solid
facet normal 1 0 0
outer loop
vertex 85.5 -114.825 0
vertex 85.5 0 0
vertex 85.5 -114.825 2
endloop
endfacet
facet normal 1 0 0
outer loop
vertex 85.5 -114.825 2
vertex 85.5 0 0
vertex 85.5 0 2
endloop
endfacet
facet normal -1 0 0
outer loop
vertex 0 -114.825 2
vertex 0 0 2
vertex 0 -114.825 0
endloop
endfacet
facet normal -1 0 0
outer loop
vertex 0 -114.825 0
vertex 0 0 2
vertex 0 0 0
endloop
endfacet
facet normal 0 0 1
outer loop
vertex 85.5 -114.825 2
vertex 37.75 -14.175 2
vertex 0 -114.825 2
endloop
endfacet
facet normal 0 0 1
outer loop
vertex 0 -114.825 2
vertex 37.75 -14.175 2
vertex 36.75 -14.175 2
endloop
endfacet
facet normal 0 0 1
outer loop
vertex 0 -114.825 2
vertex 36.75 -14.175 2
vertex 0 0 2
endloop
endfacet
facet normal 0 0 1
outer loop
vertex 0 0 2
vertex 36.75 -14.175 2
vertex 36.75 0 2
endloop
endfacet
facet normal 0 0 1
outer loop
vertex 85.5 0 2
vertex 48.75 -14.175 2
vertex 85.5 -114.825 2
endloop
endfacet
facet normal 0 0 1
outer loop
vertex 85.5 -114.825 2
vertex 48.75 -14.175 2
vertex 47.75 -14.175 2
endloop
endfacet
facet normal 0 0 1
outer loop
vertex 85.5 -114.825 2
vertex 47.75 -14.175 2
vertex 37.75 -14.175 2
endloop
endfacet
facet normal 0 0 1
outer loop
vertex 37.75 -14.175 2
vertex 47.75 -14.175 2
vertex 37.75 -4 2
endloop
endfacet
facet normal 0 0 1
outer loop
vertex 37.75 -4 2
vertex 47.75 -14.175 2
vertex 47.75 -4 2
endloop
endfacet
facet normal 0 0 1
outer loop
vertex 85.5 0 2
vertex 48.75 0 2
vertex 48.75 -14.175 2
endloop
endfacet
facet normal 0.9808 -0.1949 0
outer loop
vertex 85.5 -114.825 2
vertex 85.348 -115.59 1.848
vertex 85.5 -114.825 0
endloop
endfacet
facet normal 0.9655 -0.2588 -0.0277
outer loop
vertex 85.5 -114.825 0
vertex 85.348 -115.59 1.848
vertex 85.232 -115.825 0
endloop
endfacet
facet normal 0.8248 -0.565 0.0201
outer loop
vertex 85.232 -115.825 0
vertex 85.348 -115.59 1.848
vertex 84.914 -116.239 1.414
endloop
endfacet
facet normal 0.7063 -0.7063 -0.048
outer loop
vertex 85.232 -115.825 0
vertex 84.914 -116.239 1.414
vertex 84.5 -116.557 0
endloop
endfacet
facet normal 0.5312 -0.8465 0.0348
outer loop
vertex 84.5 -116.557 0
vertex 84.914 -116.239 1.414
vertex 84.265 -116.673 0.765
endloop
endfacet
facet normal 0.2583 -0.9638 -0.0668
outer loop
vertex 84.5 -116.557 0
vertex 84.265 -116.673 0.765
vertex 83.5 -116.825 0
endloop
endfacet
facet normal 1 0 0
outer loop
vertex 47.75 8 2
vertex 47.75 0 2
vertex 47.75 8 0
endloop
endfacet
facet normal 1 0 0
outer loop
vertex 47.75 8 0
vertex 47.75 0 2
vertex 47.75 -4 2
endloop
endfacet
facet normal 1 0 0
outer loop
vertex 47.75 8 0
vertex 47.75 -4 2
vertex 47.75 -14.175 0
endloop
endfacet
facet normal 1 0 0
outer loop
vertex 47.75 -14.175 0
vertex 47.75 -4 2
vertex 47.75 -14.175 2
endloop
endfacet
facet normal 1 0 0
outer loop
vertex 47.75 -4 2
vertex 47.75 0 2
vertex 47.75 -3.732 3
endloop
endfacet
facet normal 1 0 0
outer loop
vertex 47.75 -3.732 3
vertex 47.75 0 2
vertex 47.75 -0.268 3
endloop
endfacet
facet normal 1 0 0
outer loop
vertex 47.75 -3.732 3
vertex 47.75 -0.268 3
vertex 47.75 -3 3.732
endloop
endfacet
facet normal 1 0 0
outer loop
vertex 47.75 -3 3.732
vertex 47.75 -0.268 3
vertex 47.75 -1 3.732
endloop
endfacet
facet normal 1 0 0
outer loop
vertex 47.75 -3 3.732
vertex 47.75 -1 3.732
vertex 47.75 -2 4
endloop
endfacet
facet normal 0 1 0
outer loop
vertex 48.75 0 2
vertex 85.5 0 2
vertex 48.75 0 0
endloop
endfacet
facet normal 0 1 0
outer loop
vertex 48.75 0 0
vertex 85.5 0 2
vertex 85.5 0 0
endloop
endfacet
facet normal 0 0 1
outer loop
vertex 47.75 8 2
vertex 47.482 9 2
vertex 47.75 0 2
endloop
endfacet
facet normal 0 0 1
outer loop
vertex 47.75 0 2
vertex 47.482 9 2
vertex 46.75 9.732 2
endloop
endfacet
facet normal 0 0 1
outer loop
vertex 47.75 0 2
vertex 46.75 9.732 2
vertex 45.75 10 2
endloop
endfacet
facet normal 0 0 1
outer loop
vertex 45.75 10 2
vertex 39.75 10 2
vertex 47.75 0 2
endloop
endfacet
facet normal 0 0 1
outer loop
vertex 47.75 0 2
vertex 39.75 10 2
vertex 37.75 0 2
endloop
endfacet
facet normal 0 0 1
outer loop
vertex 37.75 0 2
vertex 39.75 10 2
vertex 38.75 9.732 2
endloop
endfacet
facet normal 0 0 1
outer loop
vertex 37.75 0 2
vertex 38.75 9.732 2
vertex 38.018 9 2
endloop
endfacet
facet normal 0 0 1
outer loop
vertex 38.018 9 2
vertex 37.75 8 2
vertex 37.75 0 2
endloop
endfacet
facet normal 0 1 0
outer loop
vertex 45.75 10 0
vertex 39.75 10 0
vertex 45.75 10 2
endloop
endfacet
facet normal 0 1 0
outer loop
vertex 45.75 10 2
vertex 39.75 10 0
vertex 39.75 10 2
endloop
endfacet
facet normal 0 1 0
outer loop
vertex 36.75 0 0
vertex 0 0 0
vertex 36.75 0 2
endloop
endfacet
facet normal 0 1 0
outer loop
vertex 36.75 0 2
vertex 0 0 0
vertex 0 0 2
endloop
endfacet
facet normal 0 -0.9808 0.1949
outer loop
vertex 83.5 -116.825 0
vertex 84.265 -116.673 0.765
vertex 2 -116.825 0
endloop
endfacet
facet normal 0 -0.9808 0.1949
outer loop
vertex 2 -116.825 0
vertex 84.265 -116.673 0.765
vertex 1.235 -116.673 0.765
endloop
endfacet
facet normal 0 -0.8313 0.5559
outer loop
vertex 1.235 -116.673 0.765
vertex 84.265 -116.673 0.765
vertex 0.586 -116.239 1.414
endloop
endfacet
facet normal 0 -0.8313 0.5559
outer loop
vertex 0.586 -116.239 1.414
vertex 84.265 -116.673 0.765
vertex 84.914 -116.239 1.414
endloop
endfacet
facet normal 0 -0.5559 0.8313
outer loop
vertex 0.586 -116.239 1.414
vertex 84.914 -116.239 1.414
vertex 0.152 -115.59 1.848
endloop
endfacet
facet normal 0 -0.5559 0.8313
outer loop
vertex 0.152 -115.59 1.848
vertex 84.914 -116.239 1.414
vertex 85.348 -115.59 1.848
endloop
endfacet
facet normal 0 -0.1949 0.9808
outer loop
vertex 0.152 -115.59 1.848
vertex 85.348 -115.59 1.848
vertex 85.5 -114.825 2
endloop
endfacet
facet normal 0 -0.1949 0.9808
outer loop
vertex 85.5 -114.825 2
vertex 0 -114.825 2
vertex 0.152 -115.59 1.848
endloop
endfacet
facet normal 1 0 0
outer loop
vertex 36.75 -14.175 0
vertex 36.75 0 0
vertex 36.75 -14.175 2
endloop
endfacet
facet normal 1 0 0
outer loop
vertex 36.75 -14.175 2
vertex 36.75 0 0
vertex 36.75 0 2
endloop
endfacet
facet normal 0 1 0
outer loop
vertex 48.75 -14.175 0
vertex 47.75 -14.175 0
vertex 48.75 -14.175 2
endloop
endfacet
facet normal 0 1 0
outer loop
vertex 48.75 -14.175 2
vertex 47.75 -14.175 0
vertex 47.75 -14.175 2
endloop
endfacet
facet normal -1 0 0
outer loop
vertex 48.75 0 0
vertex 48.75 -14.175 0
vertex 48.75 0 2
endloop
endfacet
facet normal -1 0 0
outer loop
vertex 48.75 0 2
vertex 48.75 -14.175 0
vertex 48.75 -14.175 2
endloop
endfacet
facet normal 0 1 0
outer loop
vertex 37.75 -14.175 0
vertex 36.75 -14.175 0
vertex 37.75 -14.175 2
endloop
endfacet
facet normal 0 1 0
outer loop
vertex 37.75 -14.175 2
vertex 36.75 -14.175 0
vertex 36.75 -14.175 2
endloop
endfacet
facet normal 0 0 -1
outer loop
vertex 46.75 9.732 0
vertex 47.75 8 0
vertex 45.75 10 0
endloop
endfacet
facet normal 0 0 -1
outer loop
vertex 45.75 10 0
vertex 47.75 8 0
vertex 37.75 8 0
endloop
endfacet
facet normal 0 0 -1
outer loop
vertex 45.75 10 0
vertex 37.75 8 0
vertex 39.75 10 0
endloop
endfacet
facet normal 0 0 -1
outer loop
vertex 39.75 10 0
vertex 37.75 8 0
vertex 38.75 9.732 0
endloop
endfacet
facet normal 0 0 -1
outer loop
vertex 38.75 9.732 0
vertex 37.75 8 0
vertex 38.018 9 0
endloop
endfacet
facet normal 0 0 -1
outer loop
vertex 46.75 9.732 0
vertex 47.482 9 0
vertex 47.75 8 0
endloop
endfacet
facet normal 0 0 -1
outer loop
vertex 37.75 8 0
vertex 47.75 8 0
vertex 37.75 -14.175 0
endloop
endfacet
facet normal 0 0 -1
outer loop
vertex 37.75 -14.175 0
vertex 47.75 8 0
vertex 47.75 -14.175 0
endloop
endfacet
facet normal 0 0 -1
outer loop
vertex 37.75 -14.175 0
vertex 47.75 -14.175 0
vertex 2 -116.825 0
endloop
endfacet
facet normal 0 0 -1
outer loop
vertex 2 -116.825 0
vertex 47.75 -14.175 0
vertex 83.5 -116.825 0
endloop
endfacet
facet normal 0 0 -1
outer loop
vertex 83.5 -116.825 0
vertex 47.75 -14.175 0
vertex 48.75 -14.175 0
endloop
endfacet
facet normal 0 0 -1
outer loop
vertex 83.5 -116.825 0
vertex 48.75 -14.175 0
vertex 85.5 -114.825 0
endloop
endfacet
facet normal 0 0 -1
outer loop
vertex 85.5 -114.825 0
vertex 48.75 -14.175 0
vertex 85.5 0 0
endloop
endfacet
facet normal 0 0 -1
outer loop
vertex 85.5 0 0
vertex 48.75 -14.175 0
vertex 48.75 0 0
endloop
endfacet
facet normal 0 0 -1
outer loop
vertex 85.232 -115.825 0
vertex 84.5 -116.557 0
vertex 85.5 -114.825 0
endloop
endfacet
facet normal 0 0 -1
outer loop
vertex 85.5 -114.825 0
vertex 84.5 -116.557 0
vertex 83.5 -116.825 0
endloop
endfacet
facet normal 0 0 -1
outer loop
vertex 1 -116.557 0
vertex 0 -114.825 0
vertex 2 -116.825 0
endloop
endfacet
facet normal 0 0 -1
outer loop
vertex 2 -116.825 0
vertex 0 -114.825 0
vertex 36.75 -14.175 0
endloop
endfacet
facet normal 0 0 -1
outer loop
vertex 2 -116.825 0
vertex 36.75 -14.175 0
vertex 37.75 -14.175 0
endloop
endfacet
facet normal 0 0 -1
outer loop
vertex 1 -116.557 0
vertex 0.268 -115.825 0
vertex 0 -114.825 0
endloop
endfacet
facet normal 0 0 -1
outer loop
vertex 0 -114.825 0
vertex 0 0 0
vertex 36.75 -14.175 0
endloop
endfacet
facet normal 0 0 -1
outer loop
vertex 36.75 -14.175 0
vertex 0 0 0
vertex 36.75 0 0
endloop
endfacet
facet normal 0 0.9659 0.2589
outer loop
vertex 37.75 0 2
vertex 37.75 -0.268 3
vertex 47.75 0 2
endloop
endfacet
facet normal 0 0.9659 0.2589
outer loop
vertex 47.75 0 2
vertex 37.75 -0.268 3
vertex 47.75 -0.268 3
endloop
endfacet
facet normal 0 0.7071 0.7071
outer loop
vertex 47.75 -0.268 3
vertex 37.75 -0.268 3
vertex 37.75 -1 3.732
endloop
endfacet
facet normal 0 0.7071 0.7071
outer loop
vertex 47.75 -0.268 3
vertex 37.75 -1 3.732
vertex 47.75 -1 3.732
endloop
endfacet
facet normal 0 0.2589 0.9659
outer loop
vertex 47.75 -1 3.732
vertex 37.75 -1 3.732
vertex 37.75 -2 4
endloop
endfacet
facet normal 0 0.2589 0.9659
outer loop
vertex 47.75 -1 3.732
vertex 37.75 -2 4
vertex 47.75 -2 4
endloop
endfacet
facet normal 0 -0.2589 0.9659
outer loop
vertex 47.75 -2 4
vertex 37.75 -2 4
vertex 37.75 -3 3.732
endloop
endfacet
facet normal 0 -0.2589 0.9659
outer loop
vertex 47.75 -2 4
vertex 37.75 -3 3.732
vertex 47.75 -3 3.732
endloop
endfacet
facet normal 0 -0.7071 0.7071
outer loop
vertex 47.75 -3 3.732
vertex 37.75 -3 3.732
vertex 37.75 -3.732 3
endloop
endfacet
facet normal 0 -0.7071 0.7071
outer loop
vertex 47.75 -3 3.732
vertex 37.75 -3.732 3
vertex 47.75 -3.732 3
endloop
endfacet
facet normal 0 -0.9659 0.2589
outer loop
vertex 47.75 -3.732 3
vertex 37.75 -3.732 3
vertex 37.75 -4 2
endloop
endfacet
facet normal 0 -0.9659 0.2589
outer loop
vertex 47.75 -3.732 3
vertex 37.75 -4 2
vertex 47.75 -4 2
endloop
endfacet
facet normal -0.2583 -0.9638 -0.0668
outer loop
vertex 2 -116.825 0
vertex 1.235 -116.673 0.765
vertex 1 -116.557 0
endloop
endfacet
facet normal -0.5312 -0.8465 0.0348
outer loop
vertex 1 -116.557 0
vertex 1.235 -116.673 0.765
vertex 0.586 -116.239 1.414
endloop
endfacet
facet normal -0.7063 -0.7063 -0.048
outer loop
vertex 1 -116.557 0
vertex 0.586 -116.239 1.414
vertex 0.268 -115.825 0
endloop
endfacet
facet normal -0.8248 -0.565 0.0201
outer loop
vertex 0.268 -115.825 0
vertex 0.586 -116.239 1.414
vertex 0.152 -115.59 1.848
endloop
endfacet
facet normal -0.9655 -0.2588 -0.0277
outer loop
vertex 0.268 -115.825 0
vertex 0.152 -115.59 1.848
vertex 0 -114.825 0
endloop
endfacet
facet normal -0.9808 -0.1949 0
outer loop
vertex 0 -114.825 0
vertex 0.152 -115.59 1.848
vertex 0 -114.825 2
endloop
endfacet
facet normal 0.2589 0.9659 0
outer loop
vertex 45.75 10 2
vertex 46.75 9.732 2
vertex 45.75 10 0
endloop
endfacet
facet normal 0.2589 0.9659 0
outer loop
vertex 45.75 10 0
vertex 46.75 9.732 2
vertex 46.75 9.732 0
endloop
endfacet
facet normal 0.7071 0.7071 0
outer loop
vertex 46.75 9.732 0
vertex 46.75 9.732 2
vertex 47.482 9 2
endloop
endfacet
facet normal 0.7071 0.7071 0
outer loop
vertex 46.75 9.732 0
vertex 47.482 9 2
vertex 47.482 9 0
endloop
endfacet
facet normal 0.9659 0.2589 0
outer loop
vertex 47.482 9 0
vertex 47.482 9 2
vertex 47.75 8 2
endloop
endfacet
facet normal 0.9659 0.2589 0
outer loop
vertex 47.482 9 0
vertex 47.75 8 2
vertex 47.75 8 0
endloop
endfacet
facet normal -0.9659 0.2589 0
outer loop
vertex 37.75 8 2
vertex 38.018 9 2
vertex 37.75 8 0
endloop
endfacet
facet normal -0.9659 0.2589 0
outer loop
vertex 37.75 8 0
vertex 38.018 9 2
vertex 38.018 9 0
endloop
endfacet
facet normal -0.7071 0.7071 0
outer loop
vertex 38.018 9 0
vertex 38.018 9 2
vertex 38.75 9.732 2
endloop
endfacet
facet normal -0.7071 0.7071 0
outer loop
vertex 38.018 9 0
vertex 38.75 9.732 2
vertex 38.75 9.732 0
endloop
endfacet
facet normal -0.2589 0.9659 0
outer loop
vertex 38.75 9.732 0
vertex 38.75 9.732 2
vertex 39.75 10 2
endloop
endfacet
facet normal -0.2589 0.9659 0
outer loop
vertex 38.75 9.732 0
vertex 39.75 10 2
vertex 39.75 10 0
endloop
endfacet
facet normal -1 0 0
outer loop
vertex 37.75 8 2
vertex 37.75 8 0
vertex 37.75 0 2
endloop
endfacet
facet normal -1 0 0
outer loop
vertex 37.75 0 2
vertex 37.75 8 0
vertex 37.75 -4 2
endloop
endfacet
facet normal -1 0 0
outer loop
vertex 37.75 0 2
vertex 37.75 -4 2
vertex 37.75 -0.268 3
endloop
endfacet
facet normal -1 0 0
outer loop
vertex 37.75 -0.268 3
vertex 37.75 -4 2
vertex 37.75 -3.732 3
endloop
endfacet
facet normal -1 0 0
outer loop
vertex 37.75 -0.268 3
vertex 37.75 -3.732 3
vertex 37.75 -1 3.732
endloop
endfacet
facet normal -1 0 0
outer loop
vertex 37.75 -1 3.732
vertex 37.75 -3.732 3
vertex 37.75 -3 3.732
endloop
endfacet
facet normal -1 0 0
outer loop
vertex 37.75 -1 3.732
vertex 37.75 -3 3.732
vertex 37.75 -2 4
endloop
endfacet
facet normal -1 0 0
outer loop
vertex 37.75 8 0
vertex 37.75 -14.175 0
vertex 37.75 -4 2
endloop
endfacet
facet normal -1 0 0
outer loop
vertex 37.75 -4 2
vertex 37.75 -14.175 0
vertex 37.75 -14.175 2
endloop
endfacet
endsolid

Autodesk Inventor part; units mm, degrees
ref_plane "YZ Plane" through (0, 0, 0) normal (1, 0, 0) x (0, 1, 0)
ref_plane "XZ Plane" through (0, 0, 0) normal (0, 1, 0) x (-1, 0, 0)
ref_plane "XY Plane" through (0, 0, 0) normal (0, 0, 1) x (1, 0, 0)
sketch "Sketch1" plane through (0, 0, 0) normal (0, 0, 1) x (1, 0, 0)
  line L0 (0, 0) -> (85.5, 0)
  line L1 (85.5, 0) -> (85.5, -116.825)
  line L2 (85.5, -116.825) -> (0, -116.825)
  line L3 (0, -116.825) -> (0, 0)
  dimension "d0" = 85.5
  dimension "d1" = 116.825
extrude "Extrusion1" add sketch "Sketch1" along normal blind 2
sketch "Sketch2" plane through (0, 0, 0) normal (0, 0, -1) x (-1, 0, 0)
  line L0 (-85.5, 0) -> (0, 0) projected
  line L1 (0, 0) -> (-42.75, 0)
  line L2 (-42.75, 0) -> (-47.75, 0)
  line L3 (-47.75, 0) -> (-37.75, 0)
  line L4 (-37.75, 0) -> (-37.75, 10)
  line L5 (-37.75, 10) -> (-47.75, 10)
  line L6 (-47.75, 10) -> (-47.75, 0)
  dimension "d4" = 5
  dimension "d5" = 10
  dimension "d6" = 10
extrude "Extrusion2" add sketch "Sketch2" against normal blind 2
sketch "Sketch3" plane through (0, 0, 2) normal (0, 0, 1) x (1, 0, 0)
  line L0 (0, 0) -> (37.75, 0) projected
  line L1 (37.75, 0) -> (37.75, -13.175)
  line L2 (37.75, -13.175) -> (47.75, -13.175)
  line L3 (47.75, 0) -> (47.75, 10) projected
  line L4 (47.75, -13.175) -> (47.75, 0)
  line L5 (47.75, 0) -> (48.75, 0)
  line L6 (47.75, 0) -> (85.5, 0) projected
  line L7 (48.75, 0) -> (48.75, -13.175)
  line L8 (48.75, -13.175) -> (48.75, -14.175)
  line L9 (48.75, -14.175) -> (37.75, -14.175)
  line L10 (37.75, -14.175) -> (36.75, -14.175)
  line L11 (36.75, -14.175) -> (36.75, 0)
  line L12 (37.75, -13.175) -> (37.75, -14.175)
  line L13 (47.75, -13.175) -> (47.75, -14.175)
  dimension "d9" = 13.175
  dimension "d10" = 1
  dimension "d11" = 1
  dimension "d12" = 1
extrude "Extrusion3" cut sketch "Sketch3" against normal blind 3.175 contours L0 L1 L12 L10 L11 | L4 L5 L7 L8 L9 L13
sketch "Sketch4" plane through (0, 0, 2) normal (0, 0, 1) x (1, 0, 0)
  line L0 (37.75, 10) -> (37.75, -14.175) projected
  line L1 (47.75, -14.175) -> (47.75, 10) projected
  line L2 (37.75, 0) -> (47.75, 0)
  line L3 (47.75, 0) -> (47.75, -4)
  line L4 (47.75, -4) -> (37.75, -4)
  line L5 (37.75, -4) -> (37.75, 0)
  point P0 (0, 0)
  dimension "d15" = 4
extrude "Extrusion4" add sketch "Sketch4" along normal blind 2
fillet "Fillet1" radius 2 2 edges at (42.75, 0, 4) (42.75, -4, 4)
fillet "Fillet2" radius 2 3 edges at (0, -116.825, 1) (85.5, -116.825, 1) (42.75, -116.825, 2)
fillet "Fillet3" radius 2 2 edges at (37.75, 10, 1) (47.75, 10, 1)
properties part number "BatteryBoxLid"
